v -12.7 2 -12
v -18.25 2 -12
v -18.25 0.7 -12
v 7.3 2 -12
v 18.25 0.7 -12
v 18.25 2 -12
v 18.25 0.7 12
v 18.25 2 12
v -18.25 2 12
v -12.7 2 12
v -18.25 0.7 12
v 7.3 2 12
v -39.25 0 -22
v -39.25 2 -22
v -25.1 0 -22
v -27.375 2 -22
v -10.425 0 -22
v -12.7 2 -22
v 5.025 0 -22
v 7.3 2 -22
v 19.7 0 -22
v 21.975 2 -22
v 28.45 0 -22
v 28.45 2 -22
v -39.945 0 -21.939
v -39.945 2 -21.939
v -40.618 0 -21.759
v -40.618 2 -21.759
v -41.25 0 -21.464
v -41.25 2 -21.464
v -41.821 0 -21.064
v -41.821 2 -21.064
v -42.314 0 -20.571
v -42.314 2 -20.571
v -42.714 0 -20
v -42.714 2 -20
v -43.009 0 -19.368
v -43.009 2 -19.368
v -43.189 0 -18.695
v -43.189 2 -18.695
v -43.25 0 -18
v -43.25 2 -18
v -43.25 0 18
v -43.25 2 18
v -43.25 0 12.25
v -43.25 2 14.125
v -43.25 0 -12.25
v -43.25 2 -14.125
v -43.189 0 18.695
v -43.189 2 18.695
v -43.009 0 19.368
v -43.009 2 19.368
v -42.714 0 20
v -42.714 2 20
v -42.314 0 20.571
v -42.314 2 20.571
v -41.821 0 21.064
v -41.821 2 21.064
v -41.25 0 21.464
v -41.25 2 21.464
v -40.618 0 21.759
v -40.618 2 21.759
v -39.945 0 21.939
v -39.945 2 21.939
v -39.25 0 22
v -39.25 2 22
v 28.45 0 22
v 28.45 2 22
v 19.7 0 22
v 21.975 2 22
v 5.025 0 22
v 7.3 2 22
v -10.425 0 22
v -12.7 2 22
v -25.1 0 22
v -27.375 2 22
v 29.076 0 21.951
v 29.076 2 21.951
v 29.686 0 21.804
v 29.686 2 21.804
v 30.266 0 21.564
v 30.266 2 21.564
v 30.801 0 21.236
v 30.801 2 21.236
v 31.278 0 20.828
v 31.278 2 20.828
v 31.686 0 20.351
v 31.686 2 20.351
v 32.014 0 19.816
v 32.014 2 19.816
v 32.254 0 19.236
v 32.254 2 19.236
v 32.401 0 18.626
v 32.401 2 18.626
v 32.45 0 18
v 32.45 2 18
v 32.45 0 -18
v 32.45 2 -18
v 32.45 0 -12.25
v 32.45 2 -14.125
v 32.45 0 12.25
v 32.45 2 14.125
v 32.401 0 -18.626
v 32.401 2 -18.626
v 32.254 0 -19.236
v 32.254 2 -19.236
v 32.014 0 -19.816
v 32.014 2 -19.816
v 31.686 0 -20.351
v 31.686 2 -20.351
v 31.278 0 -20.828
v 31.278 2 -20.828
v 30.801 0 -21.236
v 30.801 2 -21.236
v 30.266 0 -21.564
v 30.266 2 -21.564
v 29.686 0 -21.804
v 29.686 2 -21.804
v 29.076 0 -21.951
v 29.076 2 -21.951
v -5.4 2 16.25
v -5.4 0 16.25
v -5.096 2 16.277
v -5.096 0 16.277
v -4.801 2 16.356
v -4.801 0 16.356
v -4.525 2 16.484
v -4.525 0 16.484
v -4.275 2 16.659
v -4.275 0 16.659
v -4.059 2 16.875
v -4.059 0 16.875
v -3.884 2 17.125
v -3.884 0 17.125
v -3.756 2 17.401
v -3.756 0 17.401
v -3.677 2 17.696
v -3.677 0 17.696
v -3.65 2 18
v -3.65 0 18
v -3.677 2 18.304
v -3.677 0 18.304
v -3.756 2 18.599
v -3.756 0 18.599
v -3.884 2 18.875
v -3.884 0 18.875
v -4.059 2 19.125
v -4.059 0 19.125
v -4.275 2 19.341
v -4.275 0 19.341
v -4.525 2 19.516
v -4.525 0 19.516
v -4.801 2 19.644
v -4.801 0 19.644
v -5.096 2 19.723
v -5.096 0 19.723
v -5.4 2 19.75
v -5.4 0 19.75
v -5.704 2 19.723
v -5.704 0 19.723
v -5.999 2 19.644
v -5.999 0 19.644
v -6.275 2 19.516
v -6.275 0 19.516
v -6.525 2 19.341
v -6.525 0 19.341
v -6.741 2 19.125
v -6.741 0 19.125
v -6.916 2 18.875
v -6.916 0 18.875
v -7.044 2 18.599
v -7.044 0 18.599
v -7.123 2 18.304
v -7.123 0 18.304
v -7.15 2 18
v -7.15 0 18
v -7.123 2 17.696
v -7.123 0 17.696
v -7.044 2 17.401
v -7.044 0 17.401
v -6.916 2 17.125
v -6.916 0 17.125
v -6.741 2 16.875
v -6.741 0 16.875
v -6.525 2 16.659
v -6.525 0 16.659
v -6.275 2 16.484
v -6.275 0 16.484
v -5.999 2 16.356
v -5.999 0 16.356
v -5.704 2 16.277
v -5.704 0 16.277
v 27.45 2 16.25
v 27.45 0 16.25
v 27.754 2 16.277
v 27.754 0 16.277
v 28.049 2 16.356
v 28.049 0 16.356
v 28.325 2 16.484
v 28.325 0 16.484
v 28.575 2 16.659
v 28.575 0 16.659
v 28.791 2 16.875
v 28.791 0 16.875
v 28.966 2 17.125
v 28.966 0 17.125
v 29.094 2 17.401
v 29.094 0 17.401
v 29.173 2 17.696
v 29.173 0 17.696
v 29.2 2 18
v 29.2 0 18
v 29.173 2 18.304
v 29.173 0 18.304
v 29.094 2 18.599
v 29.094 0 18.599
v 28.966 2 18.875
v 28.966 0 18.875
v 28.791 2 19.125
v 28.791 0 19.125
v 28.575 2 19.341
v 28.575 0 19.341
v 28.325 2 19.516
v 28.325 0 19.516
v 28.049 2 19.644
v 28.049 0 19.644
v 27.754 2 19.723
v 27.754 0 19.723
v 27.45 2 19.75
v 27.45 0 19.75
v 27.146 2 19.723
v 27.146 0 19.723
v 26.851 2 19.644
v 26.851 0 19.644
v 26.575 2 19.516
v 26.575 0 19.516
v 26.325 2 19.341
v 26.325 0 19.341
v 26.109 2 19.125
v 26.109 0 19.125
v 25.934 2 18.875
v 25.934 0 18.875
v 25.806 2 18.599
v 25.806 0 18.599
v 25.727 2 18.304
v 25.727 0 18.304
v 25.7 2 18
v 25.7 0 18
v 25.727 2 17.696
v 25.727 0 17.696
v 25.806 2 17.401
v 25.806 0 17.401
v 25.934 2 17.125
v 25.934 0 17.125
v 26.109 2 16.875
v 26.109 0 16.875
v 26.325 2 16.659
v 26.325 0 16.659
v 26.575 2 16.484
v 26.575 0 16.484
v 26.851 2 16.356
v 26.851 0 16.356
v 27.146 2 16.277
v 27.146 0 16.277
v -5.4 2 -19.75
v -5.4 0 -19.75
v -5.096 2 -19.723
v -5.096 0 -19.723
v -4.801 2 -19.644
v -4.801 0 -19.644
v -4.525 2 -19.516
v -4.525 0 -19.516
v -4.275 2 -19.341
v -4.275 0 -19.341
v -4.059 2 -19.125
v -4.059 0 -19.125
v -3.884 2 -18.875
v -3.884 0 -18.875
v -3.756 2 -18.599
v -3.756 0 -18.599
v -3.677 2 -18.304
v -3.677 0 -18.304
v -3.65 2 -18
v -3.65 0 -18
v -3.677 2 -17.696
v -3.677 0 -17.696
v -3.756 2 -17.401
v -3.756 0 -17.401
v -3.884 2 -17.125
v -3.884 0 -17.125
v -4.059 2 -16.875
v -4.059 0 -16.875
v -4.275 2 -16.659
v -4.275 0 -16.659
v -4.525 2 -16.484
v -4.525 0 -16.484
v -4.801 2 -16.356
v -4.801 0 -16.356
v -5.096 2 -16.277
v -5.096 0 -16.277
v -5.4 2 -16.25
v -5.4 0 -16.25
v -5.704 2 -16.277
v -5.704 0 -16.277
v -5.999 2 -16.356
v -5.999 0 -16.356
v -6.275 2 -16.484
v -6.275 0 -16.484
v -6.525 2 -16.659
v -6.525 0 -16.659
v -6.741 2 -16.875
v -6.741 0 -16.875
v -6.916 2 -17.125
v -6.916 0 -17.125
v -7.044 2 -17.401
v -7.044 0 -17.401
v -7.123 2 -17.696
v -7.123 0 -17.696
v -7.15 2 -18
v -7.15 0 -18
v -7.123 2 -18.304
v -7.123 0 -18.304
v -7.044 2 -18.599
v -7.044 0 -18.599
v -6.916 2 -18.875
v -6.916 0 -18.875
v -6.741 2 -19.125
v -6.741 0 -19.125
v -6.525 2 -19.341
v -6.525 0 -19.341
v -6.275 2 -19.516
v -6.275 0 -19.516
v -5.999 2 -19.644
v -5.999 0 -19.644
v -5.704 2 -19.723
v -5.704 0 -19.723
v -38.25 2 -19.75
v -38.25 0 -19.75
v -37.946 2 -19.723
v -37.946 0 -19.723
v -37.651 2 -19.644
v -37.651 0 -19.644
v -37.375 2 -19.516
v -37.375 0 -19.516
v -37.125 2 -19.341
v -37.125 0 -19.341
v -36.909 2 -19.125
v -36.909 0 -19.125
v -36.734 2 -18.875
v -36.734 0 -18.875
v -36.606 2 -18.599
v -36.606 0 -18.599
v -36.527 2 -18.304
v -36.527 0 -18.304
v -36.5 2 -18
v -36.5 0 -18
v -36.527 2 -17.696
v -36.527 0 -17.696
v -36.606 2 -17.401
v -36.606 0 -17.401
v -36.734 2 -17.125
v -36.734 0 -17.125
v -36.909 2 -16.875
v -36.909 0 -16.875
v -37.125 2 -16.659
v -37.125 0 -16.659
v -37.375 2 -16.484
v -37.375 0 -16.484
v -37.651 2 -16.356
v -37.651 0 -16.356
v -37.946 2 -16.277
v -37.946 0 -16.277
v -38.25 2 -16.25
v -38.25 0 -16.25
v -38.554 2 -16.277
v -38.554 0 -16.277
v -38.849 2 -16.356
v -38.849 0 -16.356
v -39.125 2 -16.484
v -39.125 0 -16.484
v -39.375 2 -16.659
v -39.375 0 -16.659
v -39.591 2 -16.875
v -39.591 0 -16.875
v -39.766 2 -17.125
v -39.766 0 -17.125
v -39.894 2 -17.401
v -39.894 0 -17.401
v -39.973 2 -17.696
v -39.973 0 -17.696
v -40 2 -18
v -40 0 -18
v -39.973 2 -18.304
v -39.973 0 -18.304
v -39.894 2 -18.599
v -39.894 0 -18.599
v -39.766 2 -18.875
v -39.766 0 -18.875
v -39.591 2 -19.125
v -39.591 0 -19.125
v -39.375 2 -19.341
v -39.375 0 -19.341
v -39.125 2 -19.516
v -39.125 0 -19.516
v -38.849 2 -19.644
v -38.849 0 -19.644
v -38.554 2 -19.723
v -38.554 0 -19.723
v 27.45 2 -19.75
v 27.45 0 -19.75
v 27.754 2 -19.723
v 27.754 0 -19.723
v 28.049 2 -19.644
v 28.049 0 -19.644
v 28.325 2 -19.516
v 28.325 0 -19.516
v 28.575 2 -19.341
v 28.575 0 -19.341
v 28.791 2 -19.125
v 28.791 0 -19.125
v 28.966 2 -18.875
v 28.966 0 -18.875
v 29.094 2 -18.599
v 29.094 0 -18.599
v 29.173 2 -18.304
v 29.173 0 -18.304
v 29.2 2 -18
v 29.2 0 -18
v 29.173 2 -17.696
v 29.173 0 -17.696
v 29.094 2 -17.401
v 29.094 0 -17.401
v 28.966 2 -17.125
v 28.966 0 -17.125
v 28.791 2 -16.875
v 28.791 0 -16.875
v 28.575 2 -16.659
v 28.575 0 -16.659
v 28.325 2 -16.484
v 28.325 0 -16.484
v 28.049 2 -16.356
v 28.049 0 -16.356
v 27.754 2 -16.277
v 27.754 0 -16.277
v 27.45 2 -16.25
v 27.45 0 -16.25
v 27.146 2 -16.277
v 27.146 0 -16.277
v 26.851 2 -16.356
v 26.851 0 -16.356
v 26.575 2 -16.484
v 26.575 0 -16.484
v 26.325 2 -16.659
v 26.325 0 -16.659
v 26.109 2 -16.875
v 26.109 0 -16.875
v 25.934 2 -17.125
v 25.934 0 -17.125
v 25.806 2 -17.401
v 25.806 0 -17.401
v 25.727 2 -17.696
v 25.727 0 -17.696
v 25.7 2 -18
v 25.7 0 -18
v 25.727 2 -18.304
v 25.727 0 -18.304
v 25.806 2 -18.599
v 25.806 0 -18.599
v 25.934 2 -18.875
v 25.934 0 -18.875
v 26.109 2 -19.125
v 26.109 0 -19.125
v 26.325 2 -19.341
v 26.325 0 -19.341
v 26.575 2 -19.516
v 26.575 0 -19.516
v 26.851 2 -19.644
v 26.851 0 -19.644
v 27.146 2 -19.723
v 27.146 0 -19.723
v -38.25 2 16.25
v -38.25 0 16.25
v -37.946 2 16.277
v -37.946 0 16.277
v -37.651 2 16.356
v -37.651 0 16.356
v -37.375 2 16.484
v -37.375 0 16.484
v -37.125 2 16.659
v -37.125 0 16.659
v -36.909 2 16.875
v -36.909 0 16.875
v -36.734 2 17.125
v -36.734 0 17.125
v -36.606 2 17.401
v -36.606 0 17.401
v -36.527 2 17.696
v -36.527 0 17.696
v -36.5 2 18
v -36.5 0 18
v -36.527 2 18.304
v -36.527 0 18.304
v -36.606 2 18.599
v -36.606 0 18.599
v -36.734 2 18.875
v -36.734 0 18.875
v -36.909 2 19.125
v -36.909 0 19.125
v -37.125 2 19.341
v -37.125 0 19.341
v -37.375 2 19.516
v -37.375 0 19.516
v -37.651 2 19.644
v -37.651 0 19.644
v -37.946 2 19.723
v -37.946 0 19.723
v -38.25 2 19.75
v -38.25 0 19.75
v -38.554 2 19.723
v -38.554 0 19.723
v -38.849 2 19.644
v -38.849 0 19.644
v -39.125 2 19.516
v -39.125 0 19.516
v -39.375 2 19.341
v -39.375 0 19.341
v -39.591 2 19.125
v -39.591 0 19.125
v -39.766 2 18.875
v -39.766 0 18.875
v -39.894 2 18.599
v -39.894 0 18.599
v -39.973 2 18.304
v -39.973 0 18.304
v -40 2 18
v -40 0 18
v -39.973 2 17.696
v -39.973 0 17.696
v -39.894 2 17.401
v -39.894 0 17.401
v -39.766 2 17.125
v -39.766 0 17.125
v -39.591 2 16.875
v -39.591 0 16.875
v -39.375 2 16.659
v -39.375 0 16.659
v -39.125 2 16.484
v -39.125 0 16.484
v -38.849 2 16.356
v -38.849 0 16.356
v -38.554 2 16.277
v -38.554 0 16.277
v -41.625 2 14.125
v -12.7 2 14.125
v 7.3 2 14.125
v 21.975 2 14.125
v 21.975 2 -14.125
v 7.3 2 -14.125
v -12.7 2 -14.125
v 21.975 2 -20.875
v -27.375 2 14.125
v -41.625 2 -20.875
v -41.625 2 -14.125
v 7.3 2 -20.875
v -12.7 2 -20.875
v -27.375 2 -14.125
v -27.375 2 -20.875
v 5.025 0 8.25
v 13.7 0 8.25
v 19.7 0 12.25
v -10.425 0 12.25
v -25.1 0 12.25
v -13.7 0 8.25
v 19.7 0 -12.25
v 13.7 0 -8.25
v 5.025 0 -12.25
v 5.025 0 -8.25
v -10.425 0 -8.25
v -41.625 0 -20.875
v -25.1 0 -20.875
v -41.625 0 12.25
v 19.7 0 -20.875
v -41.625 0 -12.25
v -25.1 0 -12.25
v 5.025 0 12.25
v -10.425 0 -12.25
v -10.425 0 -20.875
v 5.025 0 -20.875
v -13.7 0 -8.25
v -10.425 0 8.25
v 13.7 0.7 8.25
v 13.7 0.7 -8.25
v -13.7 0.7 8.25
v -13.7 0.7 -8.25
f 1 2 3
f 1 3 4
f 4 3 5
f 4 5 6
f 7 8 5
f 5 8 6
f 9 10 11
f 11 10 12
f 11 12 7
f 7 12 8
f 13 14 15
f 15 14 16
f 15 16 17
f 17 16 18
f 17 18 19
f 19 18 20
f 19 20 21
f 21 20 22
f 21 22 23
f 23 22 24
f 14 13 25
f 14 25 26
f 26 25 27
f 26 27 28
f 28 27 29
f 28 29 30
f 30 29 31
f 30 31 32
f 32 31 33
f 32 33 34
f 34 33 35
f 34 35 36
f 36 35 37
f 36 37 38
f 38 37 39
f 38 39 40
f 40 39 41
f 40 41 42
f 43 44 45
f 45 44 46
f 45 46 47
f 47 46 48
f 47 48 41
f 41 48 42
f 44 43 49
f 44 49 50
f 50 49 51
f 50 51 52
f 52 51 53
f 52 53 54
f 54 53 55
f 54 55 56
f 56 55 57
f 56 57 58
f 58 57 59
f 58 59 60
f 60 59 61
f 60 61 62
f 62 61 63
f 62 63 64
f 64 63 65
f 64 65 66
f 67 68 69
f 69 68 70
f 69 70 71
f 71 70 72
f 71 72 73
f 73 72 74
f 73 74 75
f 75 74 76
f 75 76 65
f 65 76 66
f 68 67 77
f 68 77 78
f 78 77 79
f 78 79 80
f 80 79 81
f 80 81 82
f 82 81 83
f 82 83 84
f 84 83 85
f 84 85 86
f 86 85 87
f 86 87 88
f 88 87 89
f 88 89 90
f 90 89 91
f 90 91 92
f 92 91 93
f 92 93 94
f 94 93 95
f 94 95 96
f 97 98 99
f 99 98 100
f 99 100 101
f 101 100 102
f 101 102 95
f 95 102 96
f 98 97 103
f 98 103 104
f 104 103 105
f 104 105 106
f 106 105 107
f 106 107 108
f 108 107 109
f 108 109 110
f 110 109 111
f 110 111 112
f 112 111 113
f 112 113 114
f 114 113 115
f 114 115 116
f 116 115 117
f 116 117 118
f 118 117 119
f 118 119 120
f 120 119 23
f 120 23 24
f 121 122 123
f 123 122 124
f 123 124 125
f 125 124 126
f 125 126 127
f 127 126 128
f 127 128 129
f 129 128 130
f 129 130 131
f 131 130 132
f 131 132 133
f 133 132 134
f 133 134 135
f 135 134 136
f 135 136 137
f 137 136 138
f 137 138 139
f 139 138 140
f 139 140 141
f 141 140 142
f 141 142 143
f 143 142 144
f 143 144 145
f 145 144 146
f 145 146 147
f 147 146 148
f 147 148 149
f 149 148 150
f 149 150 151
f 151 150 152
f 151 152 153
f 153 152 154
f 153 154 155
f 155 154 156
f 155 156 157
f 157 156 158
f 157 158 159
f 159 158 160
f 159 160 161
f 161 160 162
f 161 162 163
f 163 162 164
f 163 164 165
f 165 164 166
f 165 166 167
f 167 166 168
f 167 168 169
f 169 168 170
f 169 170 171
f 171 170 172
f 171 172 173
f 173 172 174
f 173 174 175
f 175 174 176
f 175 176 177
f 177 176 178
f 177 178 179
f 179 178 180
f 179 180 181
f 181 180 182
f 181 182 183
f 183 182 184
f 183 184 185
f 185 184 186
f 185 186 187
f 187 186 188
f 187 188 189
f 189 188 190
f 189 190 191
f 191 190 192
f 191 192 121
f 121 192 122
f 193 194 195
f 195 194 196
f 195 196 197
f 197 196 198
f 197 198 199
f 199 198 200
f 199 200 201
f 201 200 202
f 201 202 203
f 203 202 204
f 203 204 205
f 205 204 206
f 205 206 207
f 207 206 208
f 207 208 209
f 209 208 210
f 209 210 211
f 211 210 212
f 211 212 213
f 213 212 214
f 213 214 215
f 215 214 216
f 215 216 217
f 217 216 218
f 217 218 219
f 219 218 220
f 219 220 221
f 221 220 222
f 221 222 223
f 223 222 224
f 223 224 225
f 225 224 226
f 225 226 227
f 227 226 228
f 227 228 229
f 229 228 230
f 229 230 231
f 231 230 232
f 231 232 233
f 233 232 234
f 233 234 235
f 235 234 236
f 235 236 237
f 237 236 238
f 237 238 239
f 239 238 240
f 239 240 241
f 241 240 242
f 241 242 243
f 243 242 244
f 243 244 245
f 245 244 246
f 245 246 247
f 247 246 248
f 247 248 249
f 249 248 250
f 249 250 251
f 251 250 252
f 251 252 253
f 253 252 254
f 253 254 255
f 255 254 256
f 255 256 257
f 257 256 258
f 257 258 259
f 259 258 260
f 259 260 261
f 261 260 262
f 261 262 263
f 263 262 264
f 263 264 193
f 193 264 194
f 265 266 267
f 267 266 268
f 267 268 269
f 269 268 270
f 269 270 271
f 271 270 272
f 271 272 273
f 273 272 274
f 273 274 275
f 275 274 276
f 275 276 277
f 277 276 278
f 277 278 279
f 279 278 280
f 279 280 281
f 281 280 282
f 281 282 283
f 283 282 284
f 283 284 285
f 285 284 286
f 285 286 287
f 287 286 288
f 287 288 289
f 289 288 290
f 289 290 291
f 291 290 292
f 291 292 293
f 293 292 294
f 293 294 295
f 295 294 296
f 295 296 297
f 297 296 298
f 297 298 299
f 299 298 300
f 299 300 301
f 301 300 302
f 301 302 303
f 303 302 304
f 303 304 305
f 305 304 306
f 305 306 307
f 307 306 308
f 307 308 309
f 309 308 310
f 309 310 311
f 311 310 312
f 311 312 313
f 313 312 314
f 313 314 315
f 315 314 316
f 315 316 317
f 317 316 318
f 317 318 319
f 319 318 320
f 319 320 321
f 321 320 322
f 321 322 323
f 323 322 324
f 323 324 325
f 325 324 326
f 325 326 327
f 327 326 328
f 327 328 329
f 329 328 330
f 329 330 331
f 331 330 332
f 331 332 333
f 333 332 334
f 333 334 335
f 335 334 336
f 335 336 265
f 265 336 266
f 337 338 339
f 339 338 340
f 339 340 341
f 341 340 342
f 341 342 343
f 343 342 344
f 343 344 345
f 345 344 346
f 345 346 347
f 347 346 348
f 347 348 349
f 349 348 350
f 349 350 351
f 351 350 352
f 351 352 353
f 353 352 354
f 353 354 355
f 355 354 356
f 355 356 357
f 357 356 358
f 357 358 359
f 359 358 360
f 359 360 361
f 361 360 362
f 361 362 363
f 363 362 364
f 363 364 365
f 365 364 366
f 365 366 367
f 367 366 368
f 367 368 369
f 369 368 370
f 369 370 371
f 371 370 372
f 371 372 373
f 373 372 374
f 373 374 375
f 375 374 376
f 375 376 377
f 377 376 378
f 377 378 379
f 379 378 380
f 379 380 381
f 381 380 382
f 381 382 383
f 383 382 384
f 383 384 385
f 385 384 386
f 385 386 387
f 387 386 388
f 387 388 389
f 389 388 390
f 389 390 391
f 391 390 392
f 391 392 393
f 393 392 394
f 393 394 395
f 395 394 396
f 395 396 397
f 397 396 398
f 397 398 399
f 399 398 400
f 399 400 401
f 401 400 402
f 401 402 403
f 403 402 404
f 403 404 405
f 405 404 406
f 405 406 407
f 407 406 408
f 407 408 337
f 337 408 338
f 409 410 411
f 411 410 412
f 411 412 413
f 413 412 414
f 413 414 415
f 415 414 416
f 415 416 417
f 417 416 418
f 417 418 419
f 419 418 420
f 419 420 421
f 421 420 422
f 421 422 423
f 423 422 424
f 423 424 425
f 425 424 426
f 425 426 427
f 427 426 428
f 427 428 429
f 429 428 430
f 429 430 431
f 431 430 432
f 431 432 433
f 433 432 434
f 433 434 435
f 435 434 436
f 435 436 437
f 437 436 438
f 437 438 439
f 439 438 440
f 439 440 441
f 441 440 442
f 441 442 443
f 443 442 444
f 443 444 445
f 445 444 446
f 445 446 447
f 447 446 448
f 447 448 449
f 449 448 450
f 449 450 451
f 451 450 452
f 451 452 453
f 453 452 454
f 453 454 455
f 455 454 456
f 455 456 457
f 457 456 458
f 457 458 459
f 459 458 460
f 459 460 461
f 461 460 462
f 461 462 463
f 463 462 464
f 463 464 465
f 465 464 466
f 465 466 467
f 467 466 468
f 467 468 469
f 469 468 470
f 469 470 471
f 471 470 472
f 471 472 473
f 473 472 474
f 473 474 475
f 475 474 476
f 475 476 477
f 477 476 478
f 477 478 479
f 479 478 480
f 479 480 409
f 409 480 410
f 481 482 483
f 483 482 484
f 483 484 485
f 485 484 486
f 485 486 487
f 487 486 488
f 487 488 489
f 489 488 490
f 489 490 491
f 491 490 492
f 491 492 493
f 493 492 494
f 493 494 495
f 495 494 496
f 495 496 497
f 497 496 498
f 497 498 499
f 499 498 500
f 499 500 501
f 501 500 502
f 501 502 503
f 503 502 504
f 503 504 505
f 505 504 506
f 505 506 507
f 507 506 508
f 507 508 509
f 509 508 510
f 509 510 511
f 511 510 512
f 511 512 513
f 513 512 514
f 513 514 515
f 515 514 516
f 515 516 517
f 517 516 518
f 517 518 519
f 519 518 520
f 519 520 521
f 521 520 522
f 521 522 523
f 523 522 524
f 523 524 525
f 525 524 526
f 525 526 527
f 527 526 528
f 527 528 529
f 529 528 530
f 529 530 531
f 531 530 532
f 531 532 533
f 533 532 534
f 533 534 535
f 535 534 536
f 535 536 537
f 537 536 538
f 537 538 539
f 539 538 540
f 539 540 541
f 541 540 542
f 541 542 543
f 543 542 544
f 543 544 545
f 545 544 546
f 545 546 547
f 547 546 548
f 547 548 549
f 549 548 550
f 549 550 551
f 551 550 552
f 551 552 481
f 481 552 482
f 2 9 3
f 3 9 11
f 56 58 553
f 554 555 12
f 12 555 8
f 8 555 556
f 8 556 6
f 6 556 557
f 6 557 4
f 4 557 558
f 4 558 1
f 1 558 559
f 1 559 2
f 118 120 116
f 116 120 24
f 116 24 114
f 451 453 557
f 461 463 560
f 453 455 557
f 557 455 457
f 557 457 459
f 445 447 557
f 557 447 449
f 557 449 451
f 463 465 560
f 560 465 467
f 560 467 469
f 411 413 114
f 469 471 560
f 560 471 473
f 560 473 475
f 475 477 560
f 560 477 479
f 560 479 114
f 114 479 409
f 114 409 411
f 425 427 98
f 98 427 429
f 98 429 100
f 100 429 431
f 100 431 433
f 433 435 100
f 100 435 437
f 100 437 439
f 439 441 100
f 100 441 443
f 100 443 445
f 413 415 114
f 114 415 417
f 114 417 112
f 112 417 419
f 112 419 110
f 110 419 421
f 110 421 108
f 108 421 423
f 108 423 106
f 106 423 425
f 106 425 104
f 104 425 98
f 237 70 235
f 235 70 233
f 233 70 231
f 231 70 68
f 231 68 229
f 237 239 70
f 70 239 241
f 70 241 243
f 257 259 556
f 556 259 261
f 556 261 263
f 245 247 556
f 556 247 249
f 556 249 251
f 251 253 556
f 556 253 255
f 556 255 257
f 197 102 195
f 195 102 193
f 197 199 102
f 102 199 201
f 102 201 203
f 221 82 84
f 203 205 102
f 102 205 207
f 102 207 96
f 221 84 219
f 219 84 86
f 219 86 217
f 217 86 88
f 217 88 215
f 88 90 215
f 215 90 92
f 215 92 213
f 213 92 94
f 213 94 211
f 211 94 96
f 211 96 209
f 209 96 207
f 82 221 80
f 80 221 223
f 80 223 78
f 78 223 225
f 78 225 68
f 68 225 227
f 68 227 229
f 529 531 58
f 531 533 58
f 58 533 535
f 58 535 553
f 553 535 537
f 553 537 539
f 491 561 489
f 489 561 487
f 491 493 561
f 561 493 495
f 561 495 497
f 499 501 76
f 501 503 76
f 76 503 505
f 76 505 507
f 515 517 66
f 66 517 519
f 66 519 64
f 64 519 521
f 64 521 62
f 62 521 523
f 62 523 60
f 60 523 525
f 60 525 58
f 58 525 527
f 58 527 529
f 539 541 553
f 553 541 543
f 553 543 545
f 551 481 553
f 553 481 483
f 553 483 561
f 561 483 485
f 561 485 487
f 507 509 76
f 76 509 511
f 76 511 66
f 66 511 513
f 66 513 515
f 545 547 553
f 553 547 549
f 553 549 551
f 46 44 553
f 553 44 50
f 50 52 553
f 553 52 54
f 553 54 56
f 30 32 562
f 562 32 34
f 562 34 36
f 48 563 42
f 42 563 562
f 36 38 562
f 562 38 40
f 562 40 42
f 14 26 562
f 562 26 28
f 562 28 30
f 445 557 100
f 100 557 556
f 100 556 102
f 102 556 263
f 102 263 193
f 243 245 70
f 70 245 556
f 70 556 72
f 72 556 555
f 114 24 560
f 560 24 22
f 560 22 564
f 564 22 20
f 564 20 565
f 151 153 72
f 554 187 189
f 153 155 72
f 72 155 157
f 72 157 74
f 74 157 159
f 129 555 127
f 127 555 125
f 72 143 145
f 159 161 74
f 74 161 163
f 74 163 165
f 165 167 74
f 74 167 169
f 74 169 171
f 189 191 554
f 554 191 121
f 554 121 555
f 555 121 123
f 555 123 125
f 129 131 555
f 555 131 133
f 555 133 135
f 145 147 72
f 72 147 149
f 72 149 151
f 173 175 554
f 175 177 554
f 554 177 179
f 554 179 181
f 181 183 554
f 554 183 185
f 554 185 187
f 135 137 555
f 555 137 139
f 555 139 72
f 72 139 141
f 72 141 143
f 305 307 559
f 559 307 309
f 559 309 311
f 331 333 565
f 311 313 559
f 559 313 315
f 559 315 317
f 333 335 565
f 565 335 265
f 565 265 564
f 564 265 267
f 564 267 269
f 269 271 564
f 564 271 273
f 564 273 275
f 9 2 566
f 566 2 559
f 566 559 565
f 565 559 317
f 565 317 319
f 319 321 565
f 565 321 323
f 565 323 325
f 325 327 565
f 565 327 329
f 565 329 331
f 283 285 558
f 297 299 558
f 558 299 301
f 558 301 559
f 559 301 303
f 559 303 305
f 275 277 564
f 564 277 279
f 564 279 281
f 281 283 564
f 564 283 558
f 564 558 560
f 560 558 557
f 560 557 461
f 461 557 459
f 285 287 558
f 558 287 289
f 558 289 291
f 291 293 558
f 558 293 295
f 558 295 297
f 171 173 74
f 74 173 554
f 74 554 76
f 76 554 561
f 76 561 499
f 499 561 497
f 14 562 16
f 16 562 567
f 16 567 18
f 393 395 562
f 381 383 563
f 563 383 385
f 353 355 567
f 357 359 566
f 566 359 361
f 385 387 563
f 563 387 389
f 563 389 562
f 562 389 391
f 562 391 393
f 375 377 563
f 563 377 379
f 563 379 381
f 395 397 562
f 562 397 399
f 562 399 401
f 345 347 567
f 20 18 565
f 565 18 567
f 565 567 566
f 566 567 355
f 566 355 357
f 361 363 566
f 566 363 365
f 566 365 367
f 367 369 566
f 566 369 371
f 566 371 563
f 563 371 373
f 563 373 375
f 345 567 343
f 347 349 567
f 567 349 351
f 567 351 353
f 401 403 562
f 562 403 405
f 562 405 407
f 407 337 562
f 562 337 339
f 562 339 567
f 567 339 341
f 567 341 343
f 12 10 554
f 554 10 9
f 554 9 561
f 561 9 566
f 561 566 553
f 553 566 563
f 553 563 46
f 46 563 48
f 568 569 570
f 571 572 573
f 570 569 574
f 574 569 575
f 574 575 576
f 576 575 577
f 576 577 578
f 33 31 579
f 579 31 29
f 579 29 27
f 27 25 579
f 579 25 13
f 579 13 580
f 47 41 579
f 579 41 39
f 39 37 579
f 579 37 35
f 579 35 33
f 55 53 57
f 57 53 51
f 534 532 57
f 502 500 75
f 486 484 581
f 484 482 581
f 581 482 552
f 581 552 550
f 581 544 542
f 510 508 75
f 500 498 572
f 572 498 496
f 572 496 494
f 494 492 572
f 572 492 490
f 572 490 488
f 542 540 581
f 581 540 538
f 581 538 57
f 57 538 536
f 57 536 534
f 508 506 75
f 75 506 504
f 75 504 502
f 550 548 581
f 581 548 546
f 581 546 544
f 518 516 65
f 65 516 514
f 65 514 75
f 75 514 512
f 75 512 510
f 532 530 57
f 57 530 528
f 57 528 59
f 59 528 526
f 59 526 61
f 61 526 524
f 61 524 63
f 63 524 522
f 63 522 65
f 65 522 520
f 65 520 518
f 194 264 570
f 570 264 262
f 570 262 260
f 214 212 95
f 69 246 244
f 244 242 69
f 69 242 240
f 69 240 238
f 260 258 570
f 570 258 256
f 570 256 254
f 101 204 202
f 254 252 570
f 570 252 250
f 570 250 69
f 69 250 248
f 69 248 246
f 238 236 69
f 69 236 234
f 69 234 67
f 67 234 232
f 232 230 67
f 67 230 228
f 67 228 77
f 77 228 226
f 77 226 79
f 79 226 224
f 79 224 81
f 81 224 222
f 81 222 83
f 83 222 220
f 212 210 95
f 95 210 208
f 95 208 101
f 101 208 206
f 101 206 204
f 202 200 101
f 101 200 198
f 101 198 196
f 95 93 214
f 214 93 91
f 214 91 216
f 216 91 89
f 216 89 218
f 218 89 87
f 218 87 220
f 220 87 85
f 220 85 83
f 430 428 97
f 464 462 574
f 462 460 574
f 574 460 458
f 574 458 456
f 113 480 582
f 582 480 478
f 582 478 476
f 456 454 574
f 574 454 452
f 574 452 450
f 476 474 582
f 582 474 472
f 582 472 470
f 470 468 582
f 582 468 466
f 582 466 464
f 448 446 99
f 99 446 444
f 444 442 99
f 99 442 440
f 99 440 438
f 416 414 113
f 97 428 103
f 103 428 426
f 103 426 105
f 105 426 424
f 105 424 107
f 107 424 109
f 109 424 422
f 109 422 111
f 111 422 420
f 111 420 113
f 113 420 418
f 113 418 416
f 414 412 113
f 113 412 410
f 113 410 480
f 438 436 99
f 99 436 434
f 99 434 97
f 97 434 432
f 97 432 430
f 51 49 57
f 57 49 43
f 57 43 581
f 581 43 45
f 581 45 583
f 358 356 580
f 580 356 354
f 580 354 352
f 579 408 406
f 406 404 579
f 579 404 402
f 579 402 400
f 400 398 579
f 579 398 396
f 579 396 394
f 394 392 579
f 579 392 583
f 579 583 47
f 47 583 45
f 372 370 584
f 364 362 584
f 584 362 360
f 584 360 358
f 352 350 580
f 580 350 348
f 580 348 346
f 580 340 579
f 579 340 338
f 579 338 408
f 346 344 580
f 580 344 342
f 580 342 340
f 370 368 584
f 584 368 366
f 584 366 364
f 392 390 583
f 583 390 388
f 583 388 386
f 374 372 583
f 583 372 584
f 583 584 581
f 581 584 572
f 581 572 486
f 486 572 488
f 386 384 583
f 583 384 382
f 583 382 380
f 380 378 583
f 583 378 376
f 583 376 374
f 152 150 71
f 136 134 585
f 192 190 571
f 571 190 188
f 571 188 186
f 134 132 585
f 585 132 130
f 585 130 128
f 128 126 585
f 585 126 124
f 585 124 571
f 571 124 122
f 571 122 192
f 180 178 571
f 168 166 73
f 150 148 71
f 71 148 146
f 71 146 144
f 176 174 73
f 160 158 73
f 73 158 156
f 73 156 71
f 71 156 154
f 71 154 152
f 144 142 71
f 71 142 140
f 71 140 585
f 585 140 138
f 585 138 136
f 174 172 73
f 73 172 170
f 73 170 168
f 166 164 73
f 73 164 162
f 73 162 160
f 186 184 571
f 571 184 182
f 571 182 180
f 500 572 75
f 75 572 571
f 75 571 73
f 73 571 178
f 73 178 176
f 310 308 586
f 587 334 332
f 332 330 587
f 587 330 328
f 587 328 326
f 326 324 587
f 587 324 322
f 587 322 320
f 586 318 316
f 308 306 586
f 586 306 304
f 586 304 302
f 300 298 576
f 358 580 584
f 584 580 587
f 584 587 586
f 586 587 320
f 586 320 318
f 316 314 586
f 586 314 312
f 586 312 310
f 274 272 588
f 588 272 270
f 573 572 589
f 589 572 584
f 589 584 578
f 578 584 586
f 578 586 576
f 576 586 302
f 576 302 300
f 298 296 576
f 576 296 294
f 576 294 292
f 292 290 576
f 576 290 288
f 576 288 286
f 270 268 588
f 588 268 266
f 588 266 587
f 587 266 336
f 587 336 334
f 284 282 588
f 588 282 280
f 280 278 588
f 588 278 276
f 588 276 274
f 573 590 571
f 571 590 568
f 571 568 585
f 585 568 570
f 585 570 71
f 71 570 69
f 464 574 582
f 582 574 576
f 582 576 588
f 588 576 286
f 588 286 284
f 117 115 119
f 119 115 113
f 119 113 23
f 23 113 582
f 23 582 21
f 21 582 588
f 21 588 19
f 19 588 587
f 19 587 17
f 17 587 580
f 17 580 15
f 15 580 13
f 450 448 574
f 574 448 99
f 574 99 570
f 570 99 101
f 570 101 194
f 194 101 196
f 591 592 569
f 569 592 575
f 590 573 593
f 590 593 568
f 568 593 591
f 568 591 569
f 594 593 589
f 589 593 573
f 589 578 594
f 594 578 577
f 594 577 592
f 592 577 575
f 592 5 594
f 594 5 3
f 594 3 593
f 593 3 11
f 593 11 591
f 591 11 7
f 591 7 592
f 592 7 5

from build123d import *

# Parameters (mm, degrees)
SKETCH1_W           = 36.5
SKETCH1_H           = 24
SKETCH1_R           = 1.75
BOSS_EXTRUDE1_DEPTH = 2
SKETCH1_3_W         = 36.5
SKETCH1_3_H         = 24
SKETCH1_3_W_2       = 27.4
SKETCH1_3_H_2       = 16.5
BOSS_EXTRUDE2_DEPTH = 0.7


with BuildPart() as part:
    # Sketch1 → Boss-Extrude1 (new body)
    with BuildSketch(Plane(origin=(0, 0, 0), x_dir=(1, 0, 0), z_dir=(0, 1, 0))):
        with BuildLine():
            Line((28.45, 22), (-39.25, 22))
            ThreePointArc((-39.25, 22), (-42.078427125, 20.828427125), (-43.25, 18))
            Line((-43.25, 18), (-43.25, -18))
            ThreePointArc((-43.25, -18), (-42.078427125, -20.828427125), (-39.25, -22))
            Line((-39.25, -22), (28.45, -22))
            ThreePointArc((28.45, -22), (31.278427125, -20.828427125), (32.45, -18))
            Line((32.45, -18), (32.45, 18))
            ThreePointArc((32.45, 18), (31.278427125, 20.828427125), (28.45, 22))
        make_face()
        Rectangle(SKETCH1_W, SKETCH1_H, mode=Mode.SUBTRACT)
        with Locations((-38.25, -18)):
            Circle(SKETCH1_R, mode=Mode.SUBTRACT)
        with Locations((-5.4, -18)):
            Circle(SKETCH1_R, mode=Mode.SUBTRACT)
        with Locations((27.45, -18)):
            Circle(SKETCH1_R, mode=Mode.SUBTRACT)
        with Locations((27.45, 18)):
            Circle(SKETCH1_R, mode=Mode.SUBTRACT)
        with Locations((-38.25, 18)):
            Circle(SKETCH1_R, mode=Mode.SUBTRACT)
        with Locations((-5.4, 18)):
            Circle(SKETCH1_R, mode=Mode.SUBTRACT)
    extrude(amount=BOSS_EXTRUDE1_DEPTH)

    # Sketch1<3> → Boss-Extrude2 (add)
    with BuildSketch(Plane(origin=(0, 0, 0), x_dir=(1, 0, 0), z_dir=(0, 1, 0))):
        Rectangle(SKETCH1_3_W, SKETCH1_3_H)
        Rectangle(SKETCH1_3_W_2, SKETCH1_3_H_2, mode=Mode.SUBTRACT)
    extrude(amount=BOSS_EXTRUDE2_DEPTH)


solid = part.part
